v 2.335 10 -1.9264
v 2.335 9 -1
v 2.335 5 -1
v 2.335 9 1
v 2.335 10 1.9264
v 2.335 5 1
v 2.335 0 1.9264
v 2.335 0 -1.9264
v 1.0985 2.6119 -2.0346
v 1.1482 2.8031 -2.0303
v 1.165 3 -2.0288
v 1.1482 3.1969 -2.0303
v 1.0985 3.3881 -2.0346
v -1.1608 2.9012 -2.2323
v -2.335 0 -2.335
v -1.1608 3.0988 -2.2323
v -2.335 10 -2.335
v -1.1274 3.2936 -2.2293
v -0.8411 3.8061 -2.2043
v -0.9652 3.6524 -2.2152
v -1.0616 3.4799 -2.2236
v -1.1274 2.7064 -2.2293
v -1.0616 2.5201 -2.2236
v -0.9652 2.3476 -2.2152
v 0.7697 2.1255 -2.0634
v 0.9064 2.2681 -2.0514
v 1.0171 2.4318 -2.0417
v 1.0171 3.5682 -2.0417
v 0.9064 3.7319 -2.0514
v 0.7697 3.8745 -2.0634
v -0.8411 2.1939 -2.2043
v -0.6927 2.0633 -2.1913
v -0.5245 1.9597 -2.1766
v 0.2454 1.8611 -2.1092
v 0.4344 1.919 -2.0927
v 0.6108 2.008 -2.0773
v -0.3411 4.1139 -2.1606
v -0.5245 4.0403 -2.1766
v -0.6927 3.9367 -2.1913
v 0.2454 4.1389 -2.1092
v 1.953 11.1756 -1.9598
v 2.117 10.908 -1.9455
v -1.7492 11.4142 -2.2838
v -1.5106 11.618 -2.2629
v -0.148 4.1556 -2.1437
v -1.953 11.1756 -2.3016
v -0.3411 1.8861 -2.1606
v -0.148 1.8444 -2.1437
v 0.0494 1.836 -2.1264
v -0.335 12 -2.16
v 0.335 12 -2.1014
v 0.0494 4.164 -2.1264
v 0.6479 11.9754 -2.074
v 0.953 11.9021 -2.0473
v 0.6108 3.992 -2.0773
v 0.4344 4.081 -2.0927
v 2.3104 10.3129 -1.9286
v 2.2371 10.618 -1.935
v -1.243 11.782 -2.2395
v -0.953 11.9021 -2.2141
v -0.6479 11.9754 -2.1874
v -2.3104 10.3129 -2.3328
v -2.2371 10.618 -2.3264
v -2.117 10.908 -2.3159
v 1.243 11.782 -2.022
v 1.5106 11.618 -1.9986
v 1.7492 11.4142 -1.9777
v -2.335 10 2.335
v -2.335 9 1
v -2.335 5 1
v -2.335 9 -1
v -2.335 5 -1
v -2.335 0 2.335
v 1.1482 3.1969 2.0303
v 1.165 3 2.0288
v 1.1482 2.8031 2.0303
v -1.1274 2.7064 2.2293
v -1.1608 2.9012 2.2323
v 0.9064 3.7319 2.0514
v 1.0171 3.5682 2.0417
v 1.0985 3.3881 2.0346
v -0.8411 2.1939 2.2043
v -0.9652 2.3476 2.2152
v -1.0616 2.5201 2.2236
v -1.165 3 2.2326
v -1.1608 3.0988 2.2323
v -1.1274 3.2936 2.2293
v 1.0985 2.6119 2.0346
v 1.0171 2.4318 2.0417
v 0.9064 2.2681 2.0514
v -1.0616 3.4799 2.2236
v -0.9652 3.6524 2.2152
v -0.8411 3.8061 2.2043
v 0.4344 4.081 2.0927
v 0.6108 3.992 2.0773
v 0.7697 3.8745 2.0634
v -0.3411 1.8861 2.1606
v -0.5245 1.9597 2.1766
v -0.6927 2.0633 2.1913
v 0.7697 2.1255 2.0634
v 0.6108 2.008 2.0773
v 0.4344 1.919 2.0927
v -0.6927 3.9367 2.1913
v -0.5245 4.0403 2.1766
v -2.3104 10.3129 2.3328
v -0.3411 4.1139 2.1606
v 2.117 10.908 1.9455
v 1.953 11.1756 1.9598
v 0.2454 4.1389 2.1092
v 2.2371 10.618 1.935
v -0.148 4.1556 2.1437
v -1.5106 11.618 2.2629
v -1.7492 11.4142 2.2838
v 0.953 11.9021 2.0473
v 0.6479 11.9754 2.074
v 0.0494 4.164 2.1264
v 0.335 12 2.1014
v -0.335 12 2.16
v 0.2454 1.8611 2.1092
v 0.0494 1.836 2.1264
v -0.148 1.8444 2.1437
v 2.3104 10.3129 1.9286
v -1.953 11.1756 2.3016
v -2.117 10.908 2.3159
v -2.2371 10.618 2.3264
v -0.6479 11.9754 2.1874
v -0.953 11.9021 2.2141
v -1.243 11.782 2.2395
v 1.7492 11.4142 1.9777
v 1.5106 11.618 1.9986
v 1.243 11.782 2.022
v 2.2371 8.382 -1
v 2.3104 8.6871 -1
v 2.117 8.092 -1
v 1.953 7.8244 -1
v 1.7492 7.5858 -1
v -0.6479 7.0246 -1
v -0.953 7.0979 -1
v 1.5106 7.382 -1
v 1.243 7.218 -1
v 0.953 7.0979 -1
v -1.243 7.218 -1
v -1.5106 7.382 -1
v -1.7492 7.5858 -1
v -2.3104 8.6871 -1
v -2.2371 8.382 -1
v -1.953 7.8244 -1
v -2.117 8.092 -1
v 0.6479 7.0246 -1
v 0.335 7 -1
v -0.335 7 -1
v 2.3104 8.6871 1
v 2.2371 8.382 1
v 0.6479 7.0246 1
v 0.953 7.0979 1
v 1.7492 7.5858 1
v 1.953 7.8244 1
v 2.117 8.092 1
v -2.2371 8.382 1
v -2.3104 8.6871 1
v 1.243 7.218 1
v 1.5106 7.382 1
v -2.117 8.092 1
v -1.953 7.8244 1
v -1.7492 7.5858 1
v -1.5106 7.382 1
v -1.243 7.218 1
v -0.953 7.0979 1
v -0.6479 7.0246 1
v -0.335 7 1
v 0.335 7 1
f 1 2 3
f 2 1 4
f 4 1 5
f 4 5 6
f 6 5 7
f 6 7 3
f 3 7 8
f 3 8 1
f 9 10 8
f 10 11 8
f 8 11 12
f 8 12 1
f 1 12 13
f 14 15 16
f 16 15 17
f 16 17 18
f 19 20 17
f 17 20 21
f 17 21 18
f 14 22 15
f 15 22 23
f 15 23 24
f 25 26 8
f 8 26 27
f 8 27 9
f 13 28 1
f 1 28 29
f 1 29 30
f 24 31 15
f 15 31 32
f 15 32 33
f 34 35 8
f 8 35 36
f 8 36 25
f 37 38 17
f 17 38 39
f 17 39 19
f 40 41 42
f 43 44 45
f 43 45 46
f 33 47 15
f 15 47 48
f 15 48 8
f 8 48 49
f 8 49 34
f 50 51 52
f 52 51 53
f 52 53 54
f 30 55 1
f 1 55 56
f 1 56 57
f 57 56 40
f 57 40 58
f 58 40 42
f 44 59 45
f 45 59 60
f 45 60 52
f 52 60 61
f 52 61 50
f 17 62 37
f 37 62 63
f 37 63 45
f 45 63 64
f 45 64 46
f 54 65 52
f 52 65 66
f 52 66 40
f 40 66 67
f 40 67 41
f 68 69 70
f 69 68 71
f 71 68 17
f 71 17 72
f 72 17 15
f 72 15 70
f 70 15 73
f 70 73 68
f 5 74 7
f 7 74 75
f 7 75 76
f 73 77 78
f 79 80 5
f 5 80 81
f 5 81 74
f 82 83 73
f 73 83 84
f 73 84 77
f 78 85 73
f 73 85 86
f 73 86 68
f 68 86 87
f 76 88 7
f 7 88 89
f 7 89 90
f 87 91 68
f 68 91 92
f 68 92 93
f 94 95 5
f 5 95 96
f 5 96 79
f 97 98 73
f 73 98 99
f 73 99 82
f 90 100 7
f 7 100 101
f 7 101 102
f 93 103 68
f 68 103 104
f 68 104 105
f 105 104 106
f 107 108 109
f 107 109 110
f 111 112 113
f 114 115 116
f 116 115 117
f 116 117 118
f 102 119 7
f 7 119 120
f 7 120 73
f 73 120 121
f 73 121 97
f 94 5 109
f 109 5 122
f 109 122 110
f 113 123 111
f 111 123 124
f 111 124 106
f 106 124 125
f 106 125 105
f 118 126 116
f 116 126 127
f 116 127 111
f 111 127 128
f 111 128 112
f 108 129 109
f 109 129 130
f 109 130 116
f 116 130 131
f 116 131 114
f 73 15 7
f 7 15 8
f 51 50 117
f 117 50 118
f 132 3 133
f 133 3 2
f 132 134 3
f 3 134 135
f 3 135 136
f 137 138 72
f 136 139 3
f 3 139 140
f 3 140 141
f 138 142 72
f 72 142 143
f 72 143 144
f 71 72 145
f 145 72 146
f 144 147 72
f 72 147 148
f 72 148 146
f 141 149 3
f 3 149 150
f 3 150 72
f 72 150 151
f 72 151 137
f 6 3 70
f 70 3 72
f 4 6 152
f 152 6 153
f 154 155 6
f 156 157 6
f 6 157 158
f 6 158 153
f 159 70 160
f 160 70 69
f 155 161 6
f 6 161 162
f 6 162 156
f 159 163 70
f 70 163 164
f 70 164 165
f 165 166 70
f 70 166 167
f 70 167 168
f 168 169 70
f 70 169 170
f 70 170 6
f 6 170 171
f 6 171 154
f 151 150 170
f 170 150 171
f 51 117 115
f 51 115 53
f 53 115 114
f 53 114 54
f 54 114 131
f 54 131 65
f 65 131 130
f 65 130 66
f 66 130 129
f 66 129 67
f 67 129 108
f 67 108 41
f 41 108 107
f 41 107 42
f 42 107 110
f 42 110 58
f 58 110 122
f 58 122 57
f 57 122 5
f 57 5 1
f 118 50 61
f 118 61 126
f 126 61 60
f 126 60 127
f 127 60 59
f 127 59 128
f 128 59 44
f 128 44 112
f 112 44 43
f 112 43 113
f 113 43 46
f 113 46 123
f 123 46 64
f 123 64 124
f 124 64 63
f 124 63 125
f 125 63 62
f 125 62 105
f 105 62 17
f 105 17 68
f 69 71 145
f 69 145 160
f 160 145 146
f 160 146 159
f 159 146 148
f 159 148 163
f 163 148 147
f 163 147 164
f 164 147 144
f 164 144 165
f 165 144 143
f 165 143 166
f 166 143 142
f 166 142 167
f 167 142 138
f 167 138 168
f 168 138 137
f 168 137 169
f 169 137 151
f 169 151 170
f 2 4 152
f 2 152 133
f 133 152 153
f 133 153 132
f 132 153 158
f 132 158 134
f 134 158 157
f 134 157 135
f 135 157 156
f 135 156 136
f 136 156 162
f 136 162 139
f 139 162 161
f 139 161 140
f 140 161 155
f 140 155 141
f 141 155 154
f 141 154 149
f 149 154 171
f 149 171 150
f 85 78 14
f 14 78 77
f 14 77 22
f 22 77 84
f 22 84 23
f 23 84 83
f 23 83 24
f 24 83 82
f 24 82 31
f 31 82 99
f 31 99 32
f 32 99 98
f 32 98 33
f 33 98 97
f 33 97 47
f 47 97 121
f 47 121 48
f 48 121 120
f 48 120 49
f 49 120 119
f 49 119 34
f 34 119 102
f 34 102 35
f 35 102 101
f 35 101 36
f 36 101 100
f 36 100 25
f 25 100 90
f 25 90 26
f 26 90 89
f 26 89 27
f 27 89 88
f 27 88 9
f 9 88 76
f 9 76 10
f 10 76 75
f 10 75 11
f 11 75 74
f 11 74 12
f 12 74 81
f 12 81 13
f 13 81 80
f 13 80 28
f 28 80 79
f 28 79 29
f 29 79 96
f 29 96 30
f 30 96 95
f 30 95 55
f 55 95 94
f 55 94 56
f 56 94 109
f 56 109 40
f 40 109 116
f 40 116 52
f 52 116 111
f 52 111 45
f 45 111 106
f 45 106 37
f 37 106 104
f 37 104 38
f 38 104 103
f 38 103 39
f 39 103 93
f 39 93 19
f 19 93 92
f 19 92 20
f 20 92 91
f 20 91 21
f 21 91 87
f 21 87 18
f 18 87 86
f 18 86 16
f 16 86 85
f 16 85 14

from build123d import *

# Parameters (mm, degrees)
BOSS_EXTRUDE1_DEPTH     = 10
BOSS_EXTRUDE2_DEPTH     = 2
SKETCH4_W               = 2
SKETCH4_H               = 2
CUT_EXTRUDE1_DEPTH      = 4.67
FILLET1_R               = 2
SKETCH6_R               = 1.165
CUT_EXTRUDE2_DEPTH      = 3.335
CUT_EXTRUDE2_DEPTH_BACK = 3.335


with BuildPart() as part:
    # Sketch2 → Boss-Extrude1 (new body)
    with BuildSketch(Plane(origin=(0, 0, 0), x_dir=(1, 0, 0), z_dir=(0, 1, 0))):
        Polygon((-2.335, -2.335), (-2.335, 2.335), (2.335, 1.926427941), (2.335, -1.926427941), align=None)
    extrude(amount=BOSS_EXTRUDE1_DEPTH)

    # Sketch3 → Boss-Extrude2 (add)
    with BuildSketch(Plane(origin=(0, 10, 0), x_dir=(1, 0, 0), z_dir=(0, 1, 0))):
        Polygon((2.335, -1.926427941), (2.335, 1.926427941), (-2.335, 2.335), (-2.335, -2.335), align=None)
    extrude(amount=BOSS_EXTRUDE2_DEPTH)

    # Sketch4 → Cut-Extrude1 (cut)
    with BuildSketch(Plane(origin=(2.335, 0, 0), x_dir=(0, 0, -1), z_dir=(1, 0, 0))):
        with Locations((0, 6)):
            Rectangle(SKETCH4_W, SKETCH4_H)
    extrude(amount=-CUT_EXTRUDE1_DEPTH, mode=Mode.SUBTRACT)

    # Fillet1
    fillet1_edges = [part.edges().sort_by_distance(p)[0] for p in [
        (2.335, 12, 0),
        (-2.335, 12, 0),
        (2.335, 7, 0),
        (-2.335, 7, 0),
    ]]
    fillet(fillet1_edges, radius=FILLET1_R)

    # Sketch6 → Cut-Extrude2 (cut, two sides)
    with BuildSketch(Plane.XY) as cut_extrude2_sk:
        with Locations((0, 3)):
            Circle(SKETCH6_R)
    extrude(amount=CUT_EXTRUDE2_DEPTH, mode=Mode.SUBTRACT)
    extrude(cut_extrude2_sk.sketch, amount=-CUT_EXTRUDE2_DEPTH_BACK, mode=Mode.SUBTRACT)


solid = part.part
